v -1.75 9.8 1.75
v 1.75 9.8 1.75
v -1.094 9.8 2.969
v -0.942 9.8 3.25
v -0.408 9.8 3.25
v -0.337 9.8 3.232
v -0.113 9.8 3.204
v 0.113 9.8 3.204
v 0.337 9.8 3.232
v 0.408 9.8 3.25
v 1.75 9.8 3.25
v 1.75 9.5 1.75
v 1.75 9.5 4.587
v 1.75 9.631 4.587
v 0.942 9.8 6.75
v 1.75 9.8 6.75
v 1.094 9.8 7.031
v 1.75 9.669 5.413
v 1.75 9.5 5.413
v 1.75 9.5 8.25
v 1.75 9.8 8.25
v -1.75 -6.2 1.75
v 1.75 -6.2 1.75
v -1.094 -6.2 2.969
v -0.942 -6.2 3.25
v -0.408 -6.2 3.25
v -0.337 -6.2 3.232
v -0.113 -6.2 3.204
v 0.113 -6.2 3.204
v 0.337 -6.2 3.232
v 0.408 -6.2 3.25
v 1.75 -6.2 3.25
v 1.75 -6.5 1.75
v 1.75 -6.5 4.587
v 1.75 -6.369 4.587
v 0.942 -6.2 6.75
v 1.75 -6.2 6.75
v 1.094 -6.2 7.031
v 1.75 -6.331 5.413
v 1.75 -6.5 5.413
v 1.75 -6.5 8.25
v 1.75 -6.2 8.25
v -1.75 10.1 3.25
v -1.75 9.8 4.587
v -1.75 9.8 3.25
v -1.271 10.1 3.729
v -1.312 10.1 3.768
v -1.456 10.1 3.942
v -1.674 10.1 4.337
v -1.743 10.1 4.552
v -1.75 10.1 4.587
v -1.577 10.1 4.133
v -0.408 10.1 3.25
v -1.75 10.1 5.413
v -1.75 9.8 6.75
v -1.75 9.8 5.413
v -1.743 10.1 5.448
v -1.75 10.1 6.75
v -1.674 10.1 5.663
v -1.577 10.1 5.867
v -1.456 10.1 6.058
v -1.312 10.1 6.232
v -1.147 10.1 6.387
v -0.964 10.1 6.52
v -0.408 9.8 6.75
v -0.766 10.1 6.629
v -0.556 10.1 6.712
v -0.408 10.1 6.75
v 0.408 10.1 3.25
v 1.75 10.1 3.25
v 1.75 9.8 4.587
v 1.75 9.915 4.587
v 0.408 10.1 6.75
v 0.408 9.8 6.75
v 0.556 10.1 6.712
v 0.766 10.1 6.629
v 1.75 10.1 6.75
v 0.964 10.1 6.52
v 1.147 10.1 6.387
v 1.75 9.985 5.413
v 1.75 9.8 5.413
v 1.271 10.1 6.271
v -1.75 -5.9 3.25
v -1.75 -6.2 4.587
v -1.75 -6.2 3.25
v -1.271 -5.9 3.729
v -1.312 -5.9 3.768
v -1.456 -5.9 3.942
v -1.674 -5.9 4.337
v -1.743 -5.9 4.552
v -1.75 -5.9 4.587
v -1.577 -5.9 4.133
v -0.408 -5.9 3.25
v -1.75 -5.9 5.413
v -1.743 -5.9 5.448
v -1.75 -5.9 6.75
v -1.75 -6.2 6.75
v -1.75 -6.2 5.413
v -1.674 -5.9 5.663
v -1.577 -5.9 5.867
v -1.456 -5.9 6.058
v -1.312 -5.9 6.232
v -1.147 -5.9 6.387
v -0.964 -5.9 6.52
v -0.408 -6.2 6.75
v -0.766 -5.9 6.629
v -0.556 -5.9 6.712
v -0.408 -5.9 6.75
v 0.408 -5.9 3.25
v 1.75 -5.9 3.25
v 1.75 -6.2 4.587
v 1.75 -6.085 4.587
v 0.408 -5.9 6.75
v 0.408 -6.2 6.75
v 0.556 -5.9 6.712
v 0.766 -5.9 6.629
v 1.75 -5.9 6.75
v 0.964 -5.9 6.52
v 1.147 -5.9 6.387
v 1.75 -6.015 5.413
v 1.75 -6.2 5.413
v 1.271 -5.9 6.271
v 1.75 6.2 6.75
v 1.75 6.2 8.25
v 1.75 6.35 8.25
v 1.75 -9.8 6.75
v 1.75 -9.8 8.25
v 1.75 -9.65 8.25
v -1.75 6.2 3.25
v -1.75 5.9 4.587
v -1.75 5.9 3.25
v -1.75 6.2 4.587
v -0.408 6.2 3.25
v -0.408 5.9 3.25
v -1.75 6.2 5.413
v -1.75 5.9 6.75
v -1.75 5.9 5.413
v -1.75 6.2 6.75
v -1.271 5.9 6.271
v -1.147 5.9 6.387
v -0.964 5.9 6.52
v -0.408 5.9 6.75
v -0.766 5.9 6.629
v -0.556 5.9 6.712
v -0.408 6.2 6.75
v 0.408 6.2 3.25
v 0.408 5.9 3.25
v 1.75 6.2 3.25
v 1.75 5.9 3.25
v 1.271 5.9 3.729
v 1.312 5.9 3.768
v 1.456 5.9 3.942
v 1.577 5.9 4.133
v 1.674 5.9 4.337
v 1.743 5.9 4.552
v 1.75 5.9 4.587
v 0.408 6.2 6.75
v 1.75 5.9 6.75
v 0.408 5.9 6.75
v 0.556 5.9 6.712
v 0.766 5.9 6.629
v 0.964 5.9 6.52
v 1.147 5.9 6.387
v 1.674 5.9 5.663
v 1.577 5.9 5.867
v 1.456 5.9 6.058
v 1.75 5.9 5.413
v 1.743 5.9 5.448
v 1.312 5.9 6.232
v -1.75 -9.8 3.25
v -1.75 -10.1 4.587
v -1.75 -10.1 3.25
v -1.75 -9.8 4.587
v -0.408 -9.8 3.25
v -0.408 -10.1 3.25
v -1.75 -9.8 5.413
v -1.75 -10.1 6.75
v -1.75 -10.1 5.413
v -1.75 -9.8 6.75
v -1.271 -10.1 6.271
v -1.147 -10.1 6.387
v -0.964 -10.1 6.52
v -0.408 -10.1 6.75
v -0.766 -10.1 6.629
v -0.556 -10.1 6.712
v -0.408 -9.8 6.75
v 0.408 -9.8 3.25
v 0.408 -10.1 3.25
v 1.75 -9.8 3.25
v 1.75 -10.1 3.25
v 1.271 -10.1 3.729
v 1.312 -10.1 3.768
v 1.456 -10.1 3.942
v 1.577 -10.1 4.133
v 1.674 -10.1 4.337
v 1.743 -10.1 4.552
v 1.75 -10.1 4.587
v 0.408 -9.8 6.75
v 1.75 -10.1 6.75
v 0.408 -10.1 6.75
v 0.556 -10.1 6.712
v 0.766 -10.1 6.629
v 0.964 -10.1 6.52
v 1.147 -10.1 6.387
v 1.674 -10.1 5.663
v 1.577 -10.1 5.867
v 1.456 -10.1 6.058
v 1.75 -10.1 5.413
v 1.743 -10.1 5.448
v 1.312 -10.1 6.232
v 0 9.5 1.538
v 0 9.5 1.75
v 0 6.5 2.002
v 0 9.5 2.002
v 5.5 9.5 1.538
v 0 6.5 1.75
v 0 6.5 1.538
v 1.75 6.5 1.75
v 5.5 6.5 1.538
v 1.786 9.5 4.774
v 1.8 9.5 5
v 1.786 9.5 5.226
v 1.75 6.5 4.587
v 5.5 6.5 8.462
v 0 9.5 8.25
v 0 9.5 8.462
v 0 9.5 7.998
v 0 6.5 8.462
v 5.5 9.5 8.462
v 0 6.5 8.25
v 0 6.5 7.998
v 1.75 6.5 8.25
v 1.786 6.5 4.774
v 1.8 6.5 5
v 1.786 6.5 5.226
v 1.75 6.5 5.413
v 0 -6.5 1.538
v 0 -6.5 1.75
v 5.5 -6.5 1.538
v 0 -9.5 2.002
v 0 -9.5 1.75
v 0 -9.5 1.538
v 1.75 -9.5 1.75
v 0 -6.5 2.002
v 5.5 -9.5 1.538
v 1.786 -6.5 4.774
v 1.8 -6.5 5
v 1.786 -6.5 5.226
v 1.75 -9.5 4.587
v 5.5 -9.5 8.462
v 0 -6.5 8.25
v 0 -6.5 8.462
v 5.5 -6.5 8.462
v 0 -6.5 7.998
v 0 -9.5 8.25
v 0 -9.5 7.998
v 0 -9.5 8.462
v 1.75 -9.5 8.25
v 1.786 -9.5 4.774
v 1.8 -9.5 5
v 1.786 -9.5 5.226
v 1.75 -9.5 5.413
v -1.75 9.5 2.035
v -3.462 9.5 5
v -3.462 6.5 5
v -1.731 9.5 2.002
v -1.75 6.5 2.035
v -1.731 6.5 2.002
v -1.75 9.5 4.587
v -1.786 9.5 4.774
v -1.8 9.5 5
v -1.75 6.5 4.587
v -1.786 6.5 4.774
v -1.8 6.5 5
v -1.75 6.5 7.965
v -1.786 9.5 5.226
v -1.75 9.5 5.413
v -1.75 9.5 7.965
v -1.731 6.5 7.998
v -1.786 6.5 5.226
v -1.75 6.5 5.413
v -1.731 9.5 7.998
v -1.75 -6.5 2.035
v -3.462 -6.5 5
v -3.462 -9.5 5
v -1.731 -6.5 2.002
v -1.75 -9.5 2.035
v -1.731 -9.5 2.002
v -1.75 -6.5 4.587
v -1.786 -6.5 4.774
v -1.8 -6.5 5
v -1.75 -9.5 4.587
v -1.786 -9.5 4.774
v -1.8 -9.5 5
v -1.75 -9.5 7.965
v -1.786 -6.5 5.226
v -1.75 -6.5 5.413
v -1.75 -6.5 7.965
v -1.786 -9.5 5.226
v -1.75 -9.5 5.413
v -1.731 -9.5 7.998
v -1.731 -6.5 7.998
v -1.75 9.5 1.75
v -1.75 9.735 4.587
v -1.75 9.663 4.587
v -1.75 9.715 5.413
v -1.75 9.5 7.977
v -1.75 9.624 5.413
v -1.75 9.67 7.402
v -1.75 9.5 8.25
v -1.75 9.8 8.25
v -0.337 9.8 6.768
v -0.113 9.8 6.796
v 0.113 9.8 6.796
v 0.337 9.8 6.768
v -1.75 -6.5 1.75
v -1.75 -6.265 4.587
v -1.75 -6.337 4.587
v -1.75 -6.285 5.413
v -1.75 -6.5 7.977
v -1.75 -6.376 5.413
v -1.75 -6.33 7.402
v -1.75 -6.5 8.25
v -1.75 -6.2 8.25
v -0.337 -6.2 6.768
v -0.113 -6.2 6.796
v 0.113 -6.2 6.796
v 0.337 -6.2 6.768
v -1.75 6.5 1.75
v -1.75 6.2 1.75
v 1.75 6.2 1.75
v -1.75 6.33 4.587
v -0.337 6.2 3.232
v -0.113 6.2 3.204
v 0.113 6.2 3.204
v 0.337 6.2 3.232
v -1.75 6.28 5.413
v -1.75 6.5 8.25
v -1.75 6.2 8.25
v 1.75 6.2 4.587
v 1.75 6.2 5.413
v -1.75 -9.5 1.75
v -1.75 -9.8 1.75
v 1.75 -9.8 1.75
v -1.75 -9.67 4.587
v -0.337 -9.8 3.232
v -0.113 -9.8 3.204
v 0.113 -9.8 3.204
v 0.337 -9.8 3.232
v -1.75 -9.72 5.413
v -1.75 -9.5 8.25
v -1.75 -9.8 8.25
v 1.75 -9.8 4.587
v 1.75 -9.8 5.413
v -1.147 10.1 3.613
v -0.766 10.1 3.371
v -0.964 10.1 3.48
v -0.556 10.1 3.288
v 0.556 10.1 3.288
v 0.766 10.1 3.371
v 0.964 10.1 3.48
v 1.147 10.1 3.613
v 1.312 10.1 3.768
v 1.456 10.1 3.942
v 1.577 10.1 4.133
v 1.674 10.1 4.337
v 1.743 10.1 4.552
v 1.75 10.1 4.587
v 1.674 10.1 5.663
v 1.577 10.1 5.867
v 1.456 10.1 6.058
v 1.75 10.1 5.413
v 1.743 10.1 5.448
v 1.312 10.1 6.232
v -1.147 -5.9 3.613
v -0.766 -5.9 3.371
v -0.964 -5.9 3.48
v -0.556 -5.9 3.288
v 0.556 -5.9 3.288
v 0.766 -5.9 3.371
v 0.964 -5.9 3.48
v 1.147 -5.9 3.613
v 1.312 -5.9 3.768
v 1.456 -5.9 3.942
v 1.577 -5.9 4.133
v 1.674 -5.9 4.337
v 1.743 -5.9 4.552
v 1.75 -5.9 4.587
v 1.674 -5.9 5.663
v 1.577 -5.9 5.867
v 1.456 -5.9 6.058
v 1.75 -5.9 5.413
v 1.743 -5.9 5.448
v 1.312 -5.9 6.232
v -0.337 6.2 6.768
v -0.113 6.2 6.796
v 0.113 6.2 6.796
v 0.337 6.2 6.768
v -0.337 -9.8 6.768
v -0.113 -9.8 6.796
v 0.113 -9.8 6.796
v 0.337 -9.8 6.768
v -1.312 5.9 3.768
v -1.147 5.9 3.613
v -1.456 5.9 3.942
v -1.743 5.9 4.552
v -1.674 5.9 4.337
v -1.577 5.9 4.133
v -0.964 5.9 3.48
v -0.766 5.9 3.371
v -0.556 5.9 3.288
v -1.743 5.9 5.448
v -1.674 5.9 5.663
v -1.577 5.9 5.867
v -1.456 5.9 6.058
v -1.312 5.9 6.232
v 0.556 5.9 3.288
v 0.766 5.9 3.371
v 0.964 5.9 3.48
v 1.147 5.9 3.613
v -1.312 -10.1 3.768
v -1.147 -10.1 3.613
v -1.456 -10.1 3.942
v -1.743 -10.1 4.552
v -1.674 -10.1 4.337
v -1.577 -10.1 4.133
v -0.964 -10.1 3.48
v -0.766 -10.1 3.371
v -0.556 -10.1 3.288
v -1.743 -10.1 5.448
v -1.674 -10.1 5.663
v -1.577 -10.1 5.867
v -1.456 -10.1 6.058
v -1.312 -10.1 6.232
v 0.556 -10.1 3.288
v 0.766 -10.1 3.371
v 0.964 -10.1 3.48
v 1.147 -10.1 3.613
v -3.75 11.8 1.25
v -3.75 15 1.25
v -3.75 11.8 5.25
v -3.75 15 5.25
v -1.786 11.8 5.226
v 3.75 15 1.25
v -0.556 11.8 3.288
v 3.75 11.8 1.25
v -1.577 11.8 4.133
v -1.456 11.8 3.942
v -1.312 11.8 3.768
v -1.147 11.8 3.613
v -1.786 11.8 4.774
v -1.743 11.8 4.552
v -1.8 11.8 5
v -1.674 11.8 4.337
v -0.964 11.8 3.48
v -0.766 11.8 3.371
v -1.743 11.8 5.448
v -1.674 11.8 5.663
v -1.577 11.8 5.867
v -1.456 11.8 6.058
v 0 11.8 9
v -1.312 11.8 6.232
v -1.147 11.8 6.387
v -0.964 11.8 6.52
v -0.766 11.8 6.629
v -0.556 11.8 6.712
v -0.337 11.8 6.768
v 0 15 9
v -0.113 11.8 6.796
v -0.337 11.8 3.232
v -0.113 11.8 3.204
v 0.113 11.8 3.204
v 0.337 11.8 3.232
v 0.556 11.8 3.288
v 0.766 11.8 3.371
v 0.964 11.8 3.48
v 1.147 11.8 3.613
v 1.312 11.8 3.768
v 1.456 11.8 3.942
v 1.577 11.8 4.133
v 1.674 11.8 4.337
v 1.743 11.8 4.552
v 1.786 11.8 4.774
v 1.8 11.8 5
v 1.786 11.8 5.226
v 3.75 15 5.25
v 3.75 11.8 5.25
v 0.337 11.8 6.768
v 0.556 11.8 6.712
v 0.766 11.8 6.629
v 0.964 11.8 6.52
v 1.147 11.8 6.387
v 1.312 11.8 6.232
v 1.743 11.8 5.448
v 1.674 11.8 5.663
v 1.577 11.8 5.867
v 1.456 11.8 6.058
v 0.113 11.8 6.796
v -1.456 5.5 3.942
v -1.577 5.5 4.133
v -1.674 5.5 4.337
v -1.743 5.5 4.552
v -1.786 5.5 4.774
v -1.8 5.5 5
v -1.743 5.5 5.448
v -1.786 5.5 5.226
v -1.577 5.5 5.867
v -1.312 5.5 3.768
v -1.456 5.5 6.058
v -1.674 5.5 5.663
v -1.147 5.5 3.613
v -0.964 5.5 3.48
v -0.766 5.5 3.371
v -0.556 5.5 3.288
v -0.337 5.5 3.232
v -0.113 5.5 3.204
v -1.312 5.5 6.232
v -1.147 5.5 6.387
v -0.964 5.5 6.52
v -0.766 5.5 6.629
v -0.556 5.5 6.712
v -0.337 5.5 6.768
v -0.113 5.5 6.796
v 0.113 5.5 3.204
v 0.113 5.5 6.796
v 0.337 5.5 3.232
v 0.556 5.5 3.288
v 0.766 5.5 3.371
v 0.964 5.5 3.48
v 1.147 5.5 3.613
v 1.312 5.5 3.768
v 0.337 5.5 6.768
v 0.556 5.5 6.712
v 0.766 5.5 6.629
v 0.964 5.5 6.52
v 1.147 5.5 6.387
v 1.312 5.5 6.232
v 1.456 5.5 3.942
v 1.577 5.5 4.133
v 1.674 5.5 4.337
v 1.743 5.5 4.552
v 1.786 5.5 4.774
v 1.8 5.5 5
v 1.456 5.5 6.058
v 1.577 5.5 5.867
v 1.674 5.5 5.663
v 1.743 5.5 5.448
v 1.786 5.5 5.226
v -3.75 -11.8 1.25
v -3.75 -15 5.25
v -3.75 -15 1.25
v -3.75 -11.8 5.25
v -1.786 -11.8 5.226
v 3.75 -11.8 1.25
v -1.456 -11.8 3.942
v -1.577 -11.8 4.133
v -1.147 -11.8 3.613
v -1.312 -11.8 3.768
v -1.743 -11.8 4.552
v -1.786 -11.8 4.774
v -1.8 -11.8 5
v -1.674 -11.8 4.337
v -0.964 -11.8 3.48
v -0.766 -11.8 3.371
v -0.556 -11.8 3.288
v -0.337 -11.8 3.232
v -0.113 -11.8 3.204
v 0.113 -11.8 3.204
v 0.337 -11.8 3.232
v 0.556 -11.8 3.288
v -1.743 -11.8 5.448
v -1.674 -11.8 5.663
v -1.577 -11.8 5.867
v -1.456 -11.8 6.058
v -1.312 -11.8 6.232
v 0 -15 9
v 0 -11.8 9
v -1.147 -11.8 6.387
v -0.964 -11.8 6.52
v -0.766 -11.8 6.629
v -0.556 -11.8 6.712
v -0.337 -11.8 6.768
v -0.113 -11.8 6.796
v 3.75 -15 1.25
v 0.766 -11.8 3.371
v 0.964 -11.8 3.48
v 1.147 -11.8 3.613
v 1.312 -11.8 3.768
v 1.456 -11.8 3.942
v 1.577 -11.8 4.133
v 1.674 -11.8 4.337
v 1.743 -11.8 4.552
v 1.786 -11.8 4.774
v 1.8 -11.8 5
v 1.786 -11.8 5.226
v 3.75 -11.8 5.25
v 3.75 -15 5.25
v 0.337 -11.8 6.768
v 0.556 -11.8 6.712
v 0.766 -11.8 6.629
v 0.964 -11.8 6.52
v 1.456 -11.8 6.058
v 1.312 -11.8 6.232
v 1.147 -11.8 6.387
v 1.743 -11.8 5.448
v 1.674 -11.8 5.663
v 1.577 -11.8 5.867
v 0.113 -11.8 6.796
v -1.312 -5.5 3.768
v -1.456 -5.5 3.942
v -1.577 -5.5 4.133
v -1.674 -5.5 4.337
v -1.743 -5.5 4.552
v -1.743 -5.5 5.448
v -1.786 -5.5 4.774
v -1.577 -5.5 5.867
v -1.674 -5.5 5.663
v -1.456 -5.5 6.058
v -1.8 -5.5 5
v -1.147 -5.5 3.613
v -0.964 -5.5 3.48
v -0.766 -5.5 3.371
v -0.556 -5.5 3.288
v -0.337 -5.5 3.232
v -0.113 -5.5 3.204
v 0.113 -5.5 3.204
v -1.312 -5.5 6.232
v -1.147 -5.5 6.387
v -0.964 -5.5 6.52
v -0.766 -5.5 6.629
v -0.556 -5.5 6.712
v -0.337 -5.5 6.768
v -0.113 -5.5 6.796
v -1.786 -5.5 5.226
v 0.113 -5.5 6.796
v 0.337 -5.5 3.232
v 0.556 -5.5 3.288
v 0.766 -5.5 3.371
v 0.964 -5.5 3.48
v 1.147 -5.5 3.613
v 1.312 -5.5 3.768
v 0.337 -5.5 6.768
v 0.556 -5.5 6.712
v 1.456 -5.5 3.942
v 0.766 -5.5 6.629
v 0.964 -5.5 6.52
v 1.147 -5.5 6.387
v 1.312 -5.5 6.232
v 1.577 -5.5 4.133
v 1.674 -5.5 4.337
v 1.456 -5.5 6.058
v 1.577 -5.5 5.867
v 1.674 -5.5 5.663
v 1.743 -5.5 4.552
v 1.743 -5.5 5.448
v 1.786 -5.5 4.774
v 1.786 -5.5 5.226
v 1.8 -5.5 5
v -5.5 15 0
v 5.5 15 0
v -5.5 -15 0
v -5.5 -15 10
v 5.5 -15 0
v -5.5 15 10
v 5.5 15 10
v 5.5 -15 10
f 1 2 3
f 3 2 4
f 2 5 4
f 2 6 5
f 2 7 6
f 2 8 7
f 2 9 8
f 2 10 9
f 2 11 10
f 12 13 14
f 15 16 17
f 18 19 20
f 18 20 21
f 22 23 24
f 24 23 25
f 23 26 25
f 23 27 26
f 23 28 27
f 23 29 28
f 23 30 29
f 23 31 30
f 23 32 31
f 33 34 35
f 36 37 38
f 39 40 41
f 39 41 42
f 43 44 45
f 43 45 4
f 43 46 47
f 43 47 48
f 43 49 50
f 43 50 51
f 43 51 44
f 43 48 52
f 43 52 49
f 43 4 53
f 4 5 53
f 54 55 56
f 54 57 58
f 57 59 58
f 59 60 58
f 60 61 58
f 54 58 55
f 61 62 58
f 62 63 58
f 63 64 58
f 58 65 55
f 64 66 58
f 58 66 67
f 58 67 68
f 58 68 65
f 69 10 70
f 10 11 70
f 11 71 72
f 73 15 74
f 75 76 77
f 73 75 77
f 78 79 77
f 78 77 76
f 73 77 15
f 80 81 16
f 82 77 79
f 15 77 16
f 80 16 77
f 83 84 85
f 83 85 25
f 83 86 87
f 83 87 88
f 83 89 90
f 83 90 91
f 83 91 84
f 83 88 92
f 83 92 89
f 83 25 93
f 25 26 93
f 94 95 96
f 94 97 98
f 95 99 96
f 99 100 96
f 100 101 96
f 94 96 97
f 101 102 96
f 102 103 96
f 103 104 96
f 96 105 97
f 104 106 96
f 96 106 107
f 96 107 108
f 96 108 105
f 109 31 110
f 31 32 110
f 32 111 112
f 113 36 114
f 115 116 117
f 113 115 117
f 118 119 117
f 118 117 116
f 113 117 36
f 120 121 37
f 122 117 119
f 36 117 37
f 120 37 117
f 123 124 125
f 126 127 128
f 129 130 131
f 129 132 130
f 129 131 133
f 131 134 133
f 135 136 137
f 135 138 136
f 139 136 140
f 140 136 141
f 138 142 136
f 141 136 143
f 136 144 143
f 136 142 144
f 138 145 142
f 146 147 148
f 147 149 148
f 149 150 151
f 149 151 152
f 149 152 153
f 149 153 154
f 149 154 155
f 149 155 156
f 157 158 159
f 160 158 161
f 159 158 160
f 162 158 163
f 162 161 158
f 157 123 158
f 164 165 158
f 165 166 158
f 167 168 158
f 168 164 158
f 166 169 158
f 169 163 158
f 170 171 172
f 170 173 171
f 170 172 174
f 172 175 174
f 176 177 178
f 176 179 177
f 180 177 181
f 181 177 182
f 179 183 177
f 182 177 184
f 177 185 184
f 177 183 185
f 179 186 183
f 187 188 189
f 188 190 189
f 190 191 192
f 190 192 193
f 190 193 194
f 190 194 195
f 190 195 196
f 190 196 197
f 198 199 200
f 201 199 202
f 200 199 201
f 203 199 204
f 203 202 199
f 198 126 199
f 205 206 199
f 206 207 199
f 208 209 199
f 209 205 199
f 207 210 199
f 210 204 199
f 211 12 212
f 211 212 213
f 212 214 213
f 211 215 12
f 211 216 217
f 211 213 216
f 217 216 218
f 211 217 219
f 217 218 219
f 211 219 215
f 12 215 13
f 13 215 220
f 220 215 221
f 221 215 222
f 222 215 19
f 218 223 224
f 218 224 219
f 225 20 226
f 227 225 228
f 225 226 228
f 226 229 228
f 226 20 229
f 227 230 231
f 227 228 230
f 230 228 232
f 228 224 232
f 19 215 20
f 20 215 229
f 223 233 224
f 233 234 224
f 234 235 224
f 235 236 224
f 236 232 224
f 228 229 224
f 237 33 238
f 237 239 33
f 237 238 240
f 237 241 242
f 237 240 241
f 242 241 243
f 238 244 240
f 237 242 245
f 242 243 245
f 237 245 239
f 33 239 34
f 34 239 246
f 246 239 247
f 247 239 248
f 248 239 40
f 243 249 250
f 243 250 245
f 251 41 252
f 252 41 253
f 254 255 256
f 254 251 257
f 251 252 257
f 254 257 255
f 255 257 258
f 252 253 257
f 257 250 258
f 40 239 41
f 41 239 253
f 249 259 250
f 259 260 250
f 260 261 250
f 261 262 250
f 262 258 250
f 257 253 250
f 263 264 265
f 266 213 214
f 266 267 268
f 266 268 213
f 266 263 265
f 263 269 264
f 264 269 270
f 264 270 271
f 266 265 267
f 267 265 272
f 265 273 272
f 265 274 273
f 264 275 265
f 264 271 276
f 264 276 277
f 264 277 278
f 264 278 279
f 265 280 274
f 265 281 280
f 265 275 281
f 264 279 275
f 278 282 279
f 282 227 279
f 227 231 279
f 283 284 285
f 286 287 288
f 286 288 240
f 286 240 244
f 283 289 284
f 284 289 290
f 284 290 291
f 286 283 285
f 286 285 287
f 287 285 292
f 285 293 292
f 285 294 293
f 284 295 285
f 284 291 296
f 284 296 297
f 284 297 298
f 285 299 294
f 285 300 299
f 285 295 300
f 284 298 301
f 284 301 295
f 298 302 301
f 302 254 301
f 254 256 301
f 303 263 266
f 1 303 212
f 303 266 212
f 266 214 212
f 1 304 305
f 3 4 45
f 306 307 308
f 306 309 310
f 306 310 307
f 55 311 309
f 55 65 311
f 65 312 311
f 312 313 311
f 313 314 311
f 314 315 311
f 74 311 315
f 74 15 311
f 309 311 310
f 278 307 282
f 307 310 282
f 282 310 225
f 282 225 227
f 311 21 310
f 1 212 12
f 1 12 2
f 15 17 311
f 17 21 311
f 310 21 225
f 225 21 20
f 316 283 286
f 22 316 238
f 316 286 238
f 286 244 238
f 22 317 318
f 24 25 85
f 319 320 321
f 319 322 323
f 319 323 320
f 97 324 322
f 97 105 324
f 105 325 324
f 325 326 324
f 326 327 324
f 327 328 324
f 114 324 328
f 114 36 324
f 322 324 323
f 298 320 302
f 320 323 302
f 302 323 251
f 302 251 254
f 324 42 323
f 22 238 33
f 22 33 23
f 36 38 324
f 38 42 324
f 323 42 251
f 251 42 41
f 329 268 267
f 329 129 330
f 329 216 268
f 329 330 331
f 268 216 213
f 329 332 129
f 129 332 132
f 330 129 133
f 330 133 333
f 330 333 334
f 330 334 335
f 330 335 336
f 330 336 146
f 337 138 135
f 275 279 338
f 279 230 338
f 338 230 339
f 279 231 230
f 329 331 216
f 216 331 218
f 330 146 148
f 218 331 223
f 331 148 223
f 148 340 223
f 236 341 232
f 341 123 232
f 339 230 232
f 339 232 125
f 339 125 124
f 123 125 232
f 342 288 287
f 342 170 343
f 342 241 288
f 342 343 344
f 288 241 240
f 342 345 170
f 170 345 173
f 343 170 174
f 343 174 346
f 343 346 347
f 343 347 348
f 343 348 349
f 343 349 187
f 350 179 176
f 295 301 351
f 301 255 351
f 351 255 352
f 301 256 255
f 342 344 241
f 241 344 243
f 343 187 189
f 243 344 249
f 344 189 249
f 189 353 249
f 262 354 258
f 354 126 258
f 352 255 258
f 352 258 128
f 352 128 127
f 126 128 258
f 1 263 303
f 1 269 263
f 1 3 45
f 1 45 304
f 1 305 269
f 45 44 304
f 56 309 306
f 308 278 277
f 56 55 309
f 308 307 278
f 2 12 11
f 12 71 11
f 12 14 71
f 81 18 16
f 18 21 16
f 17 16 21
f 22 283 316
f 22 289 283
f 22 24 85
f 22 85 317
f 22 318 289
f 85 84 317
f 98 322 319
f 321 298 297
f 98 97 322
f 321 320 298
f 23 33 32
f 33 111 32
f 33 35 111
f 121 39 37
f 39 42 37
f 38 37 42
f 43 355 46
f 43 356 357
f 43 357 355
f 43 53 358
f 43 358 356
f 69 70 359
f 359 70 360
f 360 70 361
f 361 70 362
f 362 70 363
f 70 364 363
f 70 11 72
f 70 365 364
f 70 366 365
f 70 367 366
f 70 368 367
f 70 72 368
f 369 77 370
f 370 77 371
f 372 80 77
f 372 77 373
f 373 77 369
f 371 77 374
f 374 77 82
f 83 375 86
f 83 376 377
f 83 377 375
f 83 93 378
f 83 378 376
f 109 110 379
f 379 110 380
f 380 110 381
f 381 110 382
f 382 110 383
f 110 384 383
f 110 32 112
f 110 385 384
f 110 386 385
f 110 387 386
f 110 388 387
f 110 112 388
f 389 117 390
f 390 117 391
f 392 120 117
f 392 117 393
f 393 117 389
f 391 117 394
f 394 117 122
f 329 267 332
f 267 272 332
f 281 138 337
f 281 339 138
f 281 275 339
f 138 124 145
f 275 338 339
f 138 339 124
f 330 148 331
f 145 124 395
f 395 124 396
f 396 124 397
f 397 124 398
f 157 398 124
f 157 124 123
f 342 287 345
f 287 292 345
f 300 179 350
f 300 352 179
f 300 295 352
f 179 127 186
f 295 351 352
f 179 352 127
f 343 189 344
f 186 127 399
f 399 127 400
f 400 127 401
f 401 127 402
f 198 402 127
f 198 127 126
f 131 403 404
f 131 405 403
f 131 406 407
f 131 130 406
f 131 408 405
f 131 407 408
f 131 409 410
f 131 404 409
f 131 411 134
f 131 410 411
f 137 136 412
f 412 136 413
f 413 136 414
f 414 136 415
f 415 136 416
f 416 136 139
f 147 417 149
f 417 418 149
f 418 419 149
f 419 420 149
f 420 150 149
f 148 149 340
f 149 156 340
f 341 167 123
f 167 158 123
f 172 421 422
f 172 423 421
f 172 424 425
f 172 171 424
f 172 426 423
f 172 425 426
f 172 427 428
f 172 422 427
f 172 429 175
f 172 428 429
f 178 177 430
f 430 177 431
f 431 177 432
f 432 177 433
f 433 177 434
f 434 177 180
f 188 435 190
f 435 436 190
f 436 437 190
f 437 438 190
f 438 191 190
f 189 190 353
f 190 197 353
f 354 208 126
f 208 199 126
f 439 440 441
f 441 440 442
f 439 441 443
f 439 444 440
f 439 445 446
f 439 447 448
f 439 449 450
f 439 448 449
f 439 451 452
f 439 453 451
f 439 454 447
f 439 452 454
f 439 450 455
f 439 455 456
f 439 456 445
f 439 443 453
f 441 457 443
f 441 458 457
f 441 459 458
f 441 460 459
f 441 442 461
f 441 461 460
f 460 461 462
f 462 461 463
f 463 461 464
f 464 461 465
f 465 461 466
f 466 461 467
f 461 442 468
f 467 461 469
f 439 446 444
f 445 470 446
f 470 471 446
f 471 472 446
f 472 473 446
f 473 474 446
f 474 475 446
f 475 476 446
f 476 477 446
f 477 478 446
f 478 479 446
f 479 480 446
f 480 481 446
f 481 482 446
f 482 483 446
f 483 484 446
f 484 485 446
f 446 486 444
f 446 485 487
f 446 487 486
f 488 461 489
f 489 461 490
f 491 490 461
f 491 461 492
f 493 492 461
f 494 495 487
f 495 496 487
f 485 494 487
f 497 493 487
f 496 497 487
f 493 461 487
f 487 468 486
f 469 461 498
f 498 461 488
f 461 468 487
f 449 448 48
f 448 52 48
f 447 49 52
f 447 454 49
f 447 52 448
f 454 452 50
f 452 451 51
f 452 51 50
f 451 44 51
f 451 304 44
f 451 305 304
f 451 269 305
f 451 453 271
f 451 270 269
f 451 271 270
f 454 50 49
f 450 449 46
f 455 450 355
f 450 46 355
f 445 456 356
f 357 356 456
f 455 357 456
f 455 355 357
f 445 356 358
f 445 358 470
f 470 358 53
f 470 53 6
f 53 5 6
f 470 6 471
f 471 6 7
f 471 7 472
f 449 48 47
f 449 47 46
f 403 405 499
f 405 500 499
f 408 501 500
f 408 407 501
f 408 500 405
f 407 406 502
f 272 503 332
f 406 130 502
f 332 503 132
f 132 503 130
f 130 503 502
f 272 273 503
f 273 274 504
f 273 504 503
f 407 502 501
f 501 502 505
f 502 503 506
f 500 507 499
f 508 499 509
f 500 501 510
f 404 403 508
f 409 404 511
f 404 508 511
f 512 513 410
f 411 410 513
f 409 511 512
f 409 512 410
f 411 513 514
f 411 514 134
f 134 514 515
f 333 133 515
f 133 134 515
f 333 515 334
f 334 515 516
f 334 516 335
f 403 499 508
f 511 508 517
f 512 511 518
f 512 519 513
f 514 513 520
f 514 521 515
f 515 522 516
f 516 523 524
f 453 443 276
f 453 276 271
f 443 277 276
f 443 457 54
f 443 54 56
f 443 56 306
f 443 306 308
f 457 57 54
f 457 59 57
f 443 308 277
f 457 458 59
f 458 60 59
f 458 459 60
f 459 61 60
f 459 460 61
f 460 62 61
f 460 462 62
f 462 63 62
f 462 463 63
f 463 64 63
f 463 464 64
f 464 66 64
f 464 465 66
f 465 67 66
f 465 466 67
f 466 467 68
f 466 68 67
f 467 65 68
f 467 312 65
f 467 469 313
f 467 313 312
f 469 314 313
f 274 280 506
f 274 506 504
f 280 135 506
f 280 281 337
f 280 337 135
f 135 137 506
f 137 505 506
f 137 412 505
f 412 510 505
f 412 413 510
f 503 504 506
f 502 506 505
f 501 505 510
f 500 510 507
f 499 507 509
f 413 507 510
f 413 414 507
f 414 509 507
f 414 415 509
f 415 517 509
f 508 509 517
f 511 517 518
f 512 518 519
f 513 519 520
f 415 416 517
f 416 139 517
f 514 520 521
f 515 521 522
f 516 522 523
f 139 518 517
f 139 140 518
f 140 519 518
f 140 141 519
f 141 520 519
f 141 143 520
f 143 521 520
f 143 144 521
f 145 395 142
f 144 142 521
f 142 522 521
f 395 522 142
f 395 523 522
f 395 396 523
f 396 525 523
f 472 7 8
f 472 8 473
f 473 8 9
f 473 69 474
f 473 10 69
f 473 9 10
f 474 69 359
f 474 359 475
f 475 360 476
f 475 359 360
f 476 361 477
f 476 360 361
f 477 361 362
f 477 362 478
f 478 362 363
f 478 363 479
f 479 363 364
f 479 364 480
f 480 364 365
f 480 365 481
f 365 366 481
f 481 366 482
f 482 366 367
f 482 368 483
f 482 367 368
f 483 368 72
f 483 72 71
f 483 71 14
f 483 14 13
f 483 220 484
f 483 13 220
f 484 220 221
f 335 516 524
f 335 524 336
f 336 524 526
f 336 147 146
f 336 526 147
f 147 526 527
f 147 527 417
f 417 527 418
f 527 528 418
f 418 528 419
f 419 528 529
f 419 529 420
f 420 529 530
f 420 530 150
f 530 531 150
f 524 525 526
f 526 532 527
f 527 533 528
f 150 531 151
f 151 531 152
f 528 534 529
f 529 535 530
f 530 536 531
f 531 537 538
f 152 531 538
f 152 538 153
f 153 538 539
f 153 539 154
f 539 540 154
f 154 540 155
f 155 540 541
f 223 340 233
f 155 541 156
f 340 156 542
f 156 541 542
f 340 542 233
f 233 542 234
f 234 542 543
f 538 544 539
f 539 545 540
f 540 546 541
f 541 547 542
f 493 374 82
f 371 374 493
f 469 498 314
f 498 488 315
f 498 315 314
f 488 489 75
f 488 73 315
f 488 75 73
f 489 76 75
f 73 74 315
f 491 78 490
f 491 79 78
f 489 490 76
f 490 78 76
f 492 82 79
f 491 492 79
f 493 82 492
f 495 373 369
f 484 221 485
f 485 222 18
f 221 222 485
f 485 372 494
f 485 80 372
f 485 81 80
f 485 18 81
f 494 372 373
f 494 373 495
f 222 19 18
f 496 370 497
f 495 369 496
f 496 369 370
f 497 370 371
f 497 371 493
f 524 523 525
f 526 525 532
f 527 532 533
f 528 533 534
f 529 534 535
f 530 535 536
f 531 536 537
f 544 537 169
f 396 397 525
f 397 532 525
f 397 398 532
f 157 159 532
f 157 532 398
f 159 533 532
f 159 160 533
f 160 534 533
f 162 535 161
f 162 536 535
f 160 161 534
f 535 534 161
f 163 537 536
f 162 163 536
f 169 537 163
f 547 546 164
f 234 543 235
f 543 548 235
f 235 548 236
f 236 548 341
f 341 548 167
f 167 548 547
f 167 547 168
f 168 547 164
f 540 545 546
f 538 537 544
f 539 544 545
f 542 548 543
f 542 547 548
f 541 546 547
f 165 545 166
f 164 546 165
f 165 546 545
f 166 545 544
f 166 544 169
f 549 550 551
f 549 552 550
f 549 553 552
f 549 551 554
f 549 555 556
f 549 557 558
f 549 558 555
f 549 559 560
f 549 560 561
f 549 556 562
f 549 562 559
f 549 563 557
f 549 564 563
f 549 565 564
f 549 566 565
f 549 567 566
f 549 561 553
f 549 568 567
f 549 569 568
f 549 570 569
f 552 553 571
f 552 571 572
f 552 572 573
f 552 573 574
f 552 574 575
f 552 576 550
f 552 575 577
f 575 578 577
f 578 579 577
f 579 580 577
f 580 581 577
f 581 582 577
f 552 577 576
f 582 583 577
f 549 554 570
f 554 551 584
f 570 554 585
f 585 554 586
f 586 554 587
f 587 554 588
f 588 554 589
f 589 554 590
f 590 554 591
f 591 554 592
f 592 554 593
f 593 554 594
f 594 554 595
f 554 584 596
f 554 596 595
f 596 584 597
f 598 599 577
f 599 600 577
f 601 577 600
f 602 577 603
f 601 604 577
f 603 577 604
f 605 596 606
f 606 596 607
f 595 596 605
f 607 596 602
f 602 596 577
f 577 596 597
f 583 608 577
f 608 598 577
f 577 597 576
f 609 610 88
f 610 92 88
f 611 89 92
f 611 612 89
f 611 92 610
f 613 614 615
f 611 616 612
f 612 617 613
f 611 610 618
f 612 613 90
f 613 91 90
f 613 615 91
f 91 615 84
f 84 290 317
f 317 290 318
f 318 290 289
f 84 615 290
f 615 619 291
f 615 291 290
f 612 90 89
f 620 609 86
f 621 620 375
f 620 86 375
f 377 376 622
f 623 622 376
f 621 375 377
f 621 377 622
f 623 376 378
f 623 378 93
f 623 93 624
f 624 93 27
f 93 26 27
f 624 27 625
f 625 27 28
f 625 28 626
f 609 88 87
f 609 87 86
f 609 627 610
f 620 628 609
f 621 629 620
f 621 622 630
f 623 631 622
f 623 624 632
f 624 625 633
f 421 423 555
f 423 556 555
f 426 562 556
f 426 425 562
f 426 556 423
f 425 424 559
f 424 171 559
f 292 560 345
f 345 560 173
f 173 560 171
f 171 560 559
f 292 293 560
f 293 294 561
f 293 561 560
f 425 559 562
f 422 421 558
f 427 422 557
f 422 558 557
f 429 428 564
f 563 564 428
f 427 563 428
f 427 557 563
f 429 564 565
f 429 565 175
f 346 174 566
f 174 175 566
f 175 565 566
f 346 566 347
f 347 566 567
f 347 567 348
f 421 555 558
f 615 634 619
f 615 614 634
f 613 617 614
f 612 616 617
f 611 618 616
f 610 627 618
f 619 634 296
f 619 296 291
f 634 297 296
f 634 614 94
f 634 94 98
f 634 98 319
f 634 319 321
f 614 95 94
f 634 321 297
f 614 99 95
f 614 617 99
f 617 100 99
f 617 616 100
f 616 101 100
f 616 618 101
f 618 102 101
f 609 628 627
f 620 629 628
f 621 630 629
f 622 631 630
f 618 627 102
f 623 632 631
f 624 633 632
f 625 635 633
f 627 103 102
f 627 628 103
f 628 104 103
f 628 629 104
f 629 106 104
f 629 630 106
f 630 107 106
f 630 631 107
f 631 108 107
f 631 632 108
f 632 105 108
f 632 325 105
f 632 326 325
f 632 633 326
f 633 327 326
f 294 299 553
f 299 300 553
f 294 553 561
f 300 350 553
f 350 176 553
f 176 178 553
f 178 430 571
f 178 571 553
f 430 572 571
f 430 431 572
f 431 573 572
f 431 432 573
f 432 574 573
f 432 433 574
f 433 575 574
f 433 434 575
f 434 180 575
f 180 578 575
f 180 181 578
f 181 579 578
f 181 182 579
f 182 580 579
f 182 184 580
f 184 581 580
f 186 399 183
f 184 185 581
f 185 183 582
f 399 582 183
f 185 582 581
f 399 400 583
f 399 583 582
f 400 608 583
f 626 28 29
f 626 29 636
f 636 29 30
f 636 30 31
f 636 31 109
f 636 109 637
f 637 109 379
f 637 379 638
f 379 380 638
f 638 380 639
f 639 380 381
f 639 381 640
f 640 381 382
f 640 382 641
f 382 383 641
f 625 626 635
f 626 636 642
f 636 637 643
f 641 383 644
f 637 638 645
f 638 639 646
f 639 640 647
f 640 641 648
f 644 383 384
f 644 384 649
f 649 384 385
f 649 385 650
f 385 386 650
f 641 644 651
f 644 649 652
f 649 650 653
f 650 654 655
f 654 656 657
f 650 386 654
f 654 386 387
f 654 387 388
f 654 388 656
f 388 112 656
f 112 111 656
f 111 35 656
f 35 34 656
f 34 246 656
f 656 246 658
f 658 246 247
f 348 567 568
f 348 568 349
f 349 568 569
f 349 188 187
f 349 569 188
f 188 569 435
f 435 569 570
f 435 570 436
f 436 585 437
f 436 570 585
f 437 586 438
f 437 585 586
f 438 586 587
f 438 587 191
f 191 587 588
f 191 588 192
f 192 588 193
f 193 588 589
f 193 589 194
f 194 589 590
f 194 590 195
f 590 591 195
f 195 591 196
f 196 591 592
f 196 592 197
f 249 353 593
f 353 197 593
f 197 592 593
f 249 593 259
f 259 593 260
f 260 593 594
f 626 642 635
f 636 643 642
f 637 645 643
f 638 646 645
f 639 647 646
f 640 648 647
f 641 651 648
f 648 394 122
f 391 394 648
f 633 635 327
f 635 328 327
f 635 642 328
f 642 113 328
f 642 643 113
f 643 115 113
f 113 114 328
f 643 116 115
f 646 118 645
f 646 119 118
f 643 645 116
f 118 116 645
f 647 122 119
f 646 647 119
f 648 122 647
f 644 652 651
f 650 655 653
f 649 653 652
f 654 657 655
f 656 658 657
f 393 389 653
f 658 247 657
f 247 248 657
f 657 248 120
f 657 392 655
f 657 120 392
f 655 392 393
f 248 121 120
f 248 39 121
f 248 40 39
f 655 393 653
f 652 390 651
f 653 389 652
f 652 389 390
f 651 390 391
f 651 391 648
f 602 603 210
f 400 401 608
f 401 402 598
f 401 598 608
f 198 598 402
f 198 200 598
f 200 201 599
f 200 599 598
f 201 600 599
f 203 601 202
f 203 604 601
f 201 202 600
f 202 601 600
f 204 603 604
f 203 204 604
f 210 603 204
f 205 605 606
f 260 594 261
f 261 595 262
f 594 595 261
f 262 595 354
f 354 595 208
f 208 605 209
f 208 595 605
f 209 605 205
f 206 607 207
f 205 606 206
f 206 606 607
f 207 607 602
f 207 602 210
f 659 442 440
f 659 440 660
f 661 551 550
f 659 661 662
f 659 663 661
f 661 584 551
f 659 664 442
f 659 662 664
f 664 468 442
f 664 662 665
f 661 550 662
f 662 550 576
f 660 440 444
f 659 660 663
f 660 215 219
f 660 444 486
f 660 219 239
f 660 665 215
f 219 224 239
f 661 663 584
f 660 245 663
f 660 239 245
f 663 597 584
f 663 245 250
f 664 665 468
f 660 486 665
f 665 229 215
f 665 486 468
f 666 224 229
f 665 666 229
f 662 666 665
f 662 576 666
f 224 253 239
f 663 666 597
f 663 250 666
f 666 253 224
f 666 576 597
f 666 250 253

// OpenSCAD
$fn = 50;

difference() {
	union() {
		translate(v = [0.0, 15.0, 0]) {
			rotate(a = [90, 0, 0]) {
				difference() {
					union() {
						translate(v = [-5.5, 0, 0]) {
							cube(size = [11.0, 10.0, 30.0]);
						}
					}
					union() {
						translate(v = [0, 5.0, 5.5]) {
							rotate(a = [0, 0, 0]) {
								difference() {
									union() {
										translate(v = [-1.75, -3.25, -0.3]) {
											cube(size = [3.5, 6.5, 0.3]);
										}
										translate(v = [-1.75, -1.75, -0.6]) {
											cube(size = [3.5, 3.5, 0.3]);
										}
										translate(v = [-1.75, -3.25, 3]) {
											cube(size = [3.5, 6.5, 0.3]);
										}
										translate(v = [-1.75, -1.75, 3.3]) {
											cube(size = [3.5, 3.5, 0.3]);
										}
										translate(v = [0.0, -3.4619999999999997, 0]) {
											cube(size = [20, 6.9239999999999995, 3]);
										}
										linear_extrude(height = 3) {
											polygon(points = [[3.4619999999999997, 0.0], [1.7310000000000003, 2.9981799479017264], [-1.7309999999999992, 2.9981799479017264], [-3.4619999999999997, 4.2397272186481365e-16], [-1.7310000000000014, -2.998179947901726], [1.7309999999999977, -2.9981799479017277]]);
										}
										translate(v = [-1.75, -3.25, -0.3]) {
											cube(size = [3.5, 6.5, 0.3]);
										}
										translate(v = [-1.75, -1.75, -0.6]) {
											cube(size = [3.5, 3.5, 0.3]);
										}
										translate(v = [-1.75, -3.25, 3]) {
											cube(size = [3.5, 6.5, 0.3]);
										}
										translate(v = [-1.75, -1.75, 3.3]) {
											cube(size = [3.5, 3.5, 0.3]);
										}
										translate(v = [-1.75, -3.25, -0.3]) {
											cube(size = [3.5, 6.5, 0.3]);
										}
										translate(v = [-1.75, -1.75, -0.6]) {
											cube(size = [3.5, 3.5, 0.3]);
										}
										translate(v = [-1.75, -3.25, 3]) {
											cube(size = [3.5, 6.5, 0.3]);
										}
										translate(v = [-1.75, -1.75, 3.3]) {
											cube(size = [3.5, 3.5, 0.3]);
										}
									}
									union();
								}
							}
						}
						translate(v = [0, 5.0, 21.5]) {
							rotate(a = [0, 0, 0]) {
								difference() {
									union() {
										translate(v = [-1.75, -3.25, -0.3]) {
											cube(size = [3.5, 6.5, 0.3]);
										}
										translate(v = [-1.75, -1.75, -0.6]) {
											cube(size = [3.5, 3.5, 0.3]);
										}
										translate(v = [-1.75, -3.25, 3]) {
											cube(size = [3.5, 6.5, 0.3]);
										}
										translate(v = [-1.75, -1.75, 3.3]) {
											cube(size = [3.5, 3.5, 0.3]);
										}
										translate(v = [0.0, -3.4619999999999997, 0]) {
											cube(size = [20, 6.9239999999999995, 3]);
										}
										linear_extrude(height = 3) {
											polygon(points = [[3.4619999999999997, 0.0], [1.7310000000000003, 2.9981799479017264], [-1.7309999999999992, 2.9981799479017264], [-3.4619999999999997, 4.2397272186481365e-16], [-1.7310000000000014, -2.998179947901726], [1.7309999999999977, -2.9981799479017277]]);
										}
										translate(v = [-1.75, -3.25, -0.3]) {
											cube(size = [3.5, 6.5, 0.3]);
										}
										translate(v = [-1.75, -1.75, -0.6]) {
											cube(size = [3.5, 3.5, 0.3]);
										}
										translate(v = [-1.75, -3.25, 3]) {
											cube(size = [3.5, 6.5, 0.3]);
										}
										translate(v = [-1.75, -1.75, 3.3]) {
											cube(size = [3.5, 3.5, 0.3]);
										}
										translate(v = [-1.75, -3.25, -0.3]) {
											cube(size = [3.5, 6.5, 0.3]);
										}
										translate(v = [-1.75, -1.75, -0.6]) {
											cube(size = [3.5, 3.5, 0.3]);
										}
										translate(v = [-1.75, -3.25, 3]) {
											cube(size = [3.5, 6.5, 0.3]);
										}
										translate(v = [-1.75, -1.75, 3.3]) {
											cube(size = [3.5, 3.5, 0.3]);
										}
									}
									union();
								}
							}
						}
						translate(v = [0, 0, -0.1]) {
							linear_extrude(height = 3.3000000000000003) {
								polygon(points = [[-3.75, 1.25], [3.75, 1.25], [3.75, 5.25], [0, 9.0], [-3.75, 5.25]]);
							}
						}
						translate(v = [0, 5.0, -0.1]) {
							cylinder(h = 9.6, r = 1.8);
						}
						translate(v = [0, 0, 26.8]) {
							linear_extrude(height = 3.3000000000000003) {
								polygon(points = [[-3.75, 1.25], [3.75, 1.25], [3.75, 5.25], [0, 9.0], [-3.75, 5.25]]);
							}
						}
						translate(v = [0, 5.0, 20.5]) {
							cylinder(h = 9.6, r = 1.8);
						}
					}
				}
			}
		}
	}
	union();
}
